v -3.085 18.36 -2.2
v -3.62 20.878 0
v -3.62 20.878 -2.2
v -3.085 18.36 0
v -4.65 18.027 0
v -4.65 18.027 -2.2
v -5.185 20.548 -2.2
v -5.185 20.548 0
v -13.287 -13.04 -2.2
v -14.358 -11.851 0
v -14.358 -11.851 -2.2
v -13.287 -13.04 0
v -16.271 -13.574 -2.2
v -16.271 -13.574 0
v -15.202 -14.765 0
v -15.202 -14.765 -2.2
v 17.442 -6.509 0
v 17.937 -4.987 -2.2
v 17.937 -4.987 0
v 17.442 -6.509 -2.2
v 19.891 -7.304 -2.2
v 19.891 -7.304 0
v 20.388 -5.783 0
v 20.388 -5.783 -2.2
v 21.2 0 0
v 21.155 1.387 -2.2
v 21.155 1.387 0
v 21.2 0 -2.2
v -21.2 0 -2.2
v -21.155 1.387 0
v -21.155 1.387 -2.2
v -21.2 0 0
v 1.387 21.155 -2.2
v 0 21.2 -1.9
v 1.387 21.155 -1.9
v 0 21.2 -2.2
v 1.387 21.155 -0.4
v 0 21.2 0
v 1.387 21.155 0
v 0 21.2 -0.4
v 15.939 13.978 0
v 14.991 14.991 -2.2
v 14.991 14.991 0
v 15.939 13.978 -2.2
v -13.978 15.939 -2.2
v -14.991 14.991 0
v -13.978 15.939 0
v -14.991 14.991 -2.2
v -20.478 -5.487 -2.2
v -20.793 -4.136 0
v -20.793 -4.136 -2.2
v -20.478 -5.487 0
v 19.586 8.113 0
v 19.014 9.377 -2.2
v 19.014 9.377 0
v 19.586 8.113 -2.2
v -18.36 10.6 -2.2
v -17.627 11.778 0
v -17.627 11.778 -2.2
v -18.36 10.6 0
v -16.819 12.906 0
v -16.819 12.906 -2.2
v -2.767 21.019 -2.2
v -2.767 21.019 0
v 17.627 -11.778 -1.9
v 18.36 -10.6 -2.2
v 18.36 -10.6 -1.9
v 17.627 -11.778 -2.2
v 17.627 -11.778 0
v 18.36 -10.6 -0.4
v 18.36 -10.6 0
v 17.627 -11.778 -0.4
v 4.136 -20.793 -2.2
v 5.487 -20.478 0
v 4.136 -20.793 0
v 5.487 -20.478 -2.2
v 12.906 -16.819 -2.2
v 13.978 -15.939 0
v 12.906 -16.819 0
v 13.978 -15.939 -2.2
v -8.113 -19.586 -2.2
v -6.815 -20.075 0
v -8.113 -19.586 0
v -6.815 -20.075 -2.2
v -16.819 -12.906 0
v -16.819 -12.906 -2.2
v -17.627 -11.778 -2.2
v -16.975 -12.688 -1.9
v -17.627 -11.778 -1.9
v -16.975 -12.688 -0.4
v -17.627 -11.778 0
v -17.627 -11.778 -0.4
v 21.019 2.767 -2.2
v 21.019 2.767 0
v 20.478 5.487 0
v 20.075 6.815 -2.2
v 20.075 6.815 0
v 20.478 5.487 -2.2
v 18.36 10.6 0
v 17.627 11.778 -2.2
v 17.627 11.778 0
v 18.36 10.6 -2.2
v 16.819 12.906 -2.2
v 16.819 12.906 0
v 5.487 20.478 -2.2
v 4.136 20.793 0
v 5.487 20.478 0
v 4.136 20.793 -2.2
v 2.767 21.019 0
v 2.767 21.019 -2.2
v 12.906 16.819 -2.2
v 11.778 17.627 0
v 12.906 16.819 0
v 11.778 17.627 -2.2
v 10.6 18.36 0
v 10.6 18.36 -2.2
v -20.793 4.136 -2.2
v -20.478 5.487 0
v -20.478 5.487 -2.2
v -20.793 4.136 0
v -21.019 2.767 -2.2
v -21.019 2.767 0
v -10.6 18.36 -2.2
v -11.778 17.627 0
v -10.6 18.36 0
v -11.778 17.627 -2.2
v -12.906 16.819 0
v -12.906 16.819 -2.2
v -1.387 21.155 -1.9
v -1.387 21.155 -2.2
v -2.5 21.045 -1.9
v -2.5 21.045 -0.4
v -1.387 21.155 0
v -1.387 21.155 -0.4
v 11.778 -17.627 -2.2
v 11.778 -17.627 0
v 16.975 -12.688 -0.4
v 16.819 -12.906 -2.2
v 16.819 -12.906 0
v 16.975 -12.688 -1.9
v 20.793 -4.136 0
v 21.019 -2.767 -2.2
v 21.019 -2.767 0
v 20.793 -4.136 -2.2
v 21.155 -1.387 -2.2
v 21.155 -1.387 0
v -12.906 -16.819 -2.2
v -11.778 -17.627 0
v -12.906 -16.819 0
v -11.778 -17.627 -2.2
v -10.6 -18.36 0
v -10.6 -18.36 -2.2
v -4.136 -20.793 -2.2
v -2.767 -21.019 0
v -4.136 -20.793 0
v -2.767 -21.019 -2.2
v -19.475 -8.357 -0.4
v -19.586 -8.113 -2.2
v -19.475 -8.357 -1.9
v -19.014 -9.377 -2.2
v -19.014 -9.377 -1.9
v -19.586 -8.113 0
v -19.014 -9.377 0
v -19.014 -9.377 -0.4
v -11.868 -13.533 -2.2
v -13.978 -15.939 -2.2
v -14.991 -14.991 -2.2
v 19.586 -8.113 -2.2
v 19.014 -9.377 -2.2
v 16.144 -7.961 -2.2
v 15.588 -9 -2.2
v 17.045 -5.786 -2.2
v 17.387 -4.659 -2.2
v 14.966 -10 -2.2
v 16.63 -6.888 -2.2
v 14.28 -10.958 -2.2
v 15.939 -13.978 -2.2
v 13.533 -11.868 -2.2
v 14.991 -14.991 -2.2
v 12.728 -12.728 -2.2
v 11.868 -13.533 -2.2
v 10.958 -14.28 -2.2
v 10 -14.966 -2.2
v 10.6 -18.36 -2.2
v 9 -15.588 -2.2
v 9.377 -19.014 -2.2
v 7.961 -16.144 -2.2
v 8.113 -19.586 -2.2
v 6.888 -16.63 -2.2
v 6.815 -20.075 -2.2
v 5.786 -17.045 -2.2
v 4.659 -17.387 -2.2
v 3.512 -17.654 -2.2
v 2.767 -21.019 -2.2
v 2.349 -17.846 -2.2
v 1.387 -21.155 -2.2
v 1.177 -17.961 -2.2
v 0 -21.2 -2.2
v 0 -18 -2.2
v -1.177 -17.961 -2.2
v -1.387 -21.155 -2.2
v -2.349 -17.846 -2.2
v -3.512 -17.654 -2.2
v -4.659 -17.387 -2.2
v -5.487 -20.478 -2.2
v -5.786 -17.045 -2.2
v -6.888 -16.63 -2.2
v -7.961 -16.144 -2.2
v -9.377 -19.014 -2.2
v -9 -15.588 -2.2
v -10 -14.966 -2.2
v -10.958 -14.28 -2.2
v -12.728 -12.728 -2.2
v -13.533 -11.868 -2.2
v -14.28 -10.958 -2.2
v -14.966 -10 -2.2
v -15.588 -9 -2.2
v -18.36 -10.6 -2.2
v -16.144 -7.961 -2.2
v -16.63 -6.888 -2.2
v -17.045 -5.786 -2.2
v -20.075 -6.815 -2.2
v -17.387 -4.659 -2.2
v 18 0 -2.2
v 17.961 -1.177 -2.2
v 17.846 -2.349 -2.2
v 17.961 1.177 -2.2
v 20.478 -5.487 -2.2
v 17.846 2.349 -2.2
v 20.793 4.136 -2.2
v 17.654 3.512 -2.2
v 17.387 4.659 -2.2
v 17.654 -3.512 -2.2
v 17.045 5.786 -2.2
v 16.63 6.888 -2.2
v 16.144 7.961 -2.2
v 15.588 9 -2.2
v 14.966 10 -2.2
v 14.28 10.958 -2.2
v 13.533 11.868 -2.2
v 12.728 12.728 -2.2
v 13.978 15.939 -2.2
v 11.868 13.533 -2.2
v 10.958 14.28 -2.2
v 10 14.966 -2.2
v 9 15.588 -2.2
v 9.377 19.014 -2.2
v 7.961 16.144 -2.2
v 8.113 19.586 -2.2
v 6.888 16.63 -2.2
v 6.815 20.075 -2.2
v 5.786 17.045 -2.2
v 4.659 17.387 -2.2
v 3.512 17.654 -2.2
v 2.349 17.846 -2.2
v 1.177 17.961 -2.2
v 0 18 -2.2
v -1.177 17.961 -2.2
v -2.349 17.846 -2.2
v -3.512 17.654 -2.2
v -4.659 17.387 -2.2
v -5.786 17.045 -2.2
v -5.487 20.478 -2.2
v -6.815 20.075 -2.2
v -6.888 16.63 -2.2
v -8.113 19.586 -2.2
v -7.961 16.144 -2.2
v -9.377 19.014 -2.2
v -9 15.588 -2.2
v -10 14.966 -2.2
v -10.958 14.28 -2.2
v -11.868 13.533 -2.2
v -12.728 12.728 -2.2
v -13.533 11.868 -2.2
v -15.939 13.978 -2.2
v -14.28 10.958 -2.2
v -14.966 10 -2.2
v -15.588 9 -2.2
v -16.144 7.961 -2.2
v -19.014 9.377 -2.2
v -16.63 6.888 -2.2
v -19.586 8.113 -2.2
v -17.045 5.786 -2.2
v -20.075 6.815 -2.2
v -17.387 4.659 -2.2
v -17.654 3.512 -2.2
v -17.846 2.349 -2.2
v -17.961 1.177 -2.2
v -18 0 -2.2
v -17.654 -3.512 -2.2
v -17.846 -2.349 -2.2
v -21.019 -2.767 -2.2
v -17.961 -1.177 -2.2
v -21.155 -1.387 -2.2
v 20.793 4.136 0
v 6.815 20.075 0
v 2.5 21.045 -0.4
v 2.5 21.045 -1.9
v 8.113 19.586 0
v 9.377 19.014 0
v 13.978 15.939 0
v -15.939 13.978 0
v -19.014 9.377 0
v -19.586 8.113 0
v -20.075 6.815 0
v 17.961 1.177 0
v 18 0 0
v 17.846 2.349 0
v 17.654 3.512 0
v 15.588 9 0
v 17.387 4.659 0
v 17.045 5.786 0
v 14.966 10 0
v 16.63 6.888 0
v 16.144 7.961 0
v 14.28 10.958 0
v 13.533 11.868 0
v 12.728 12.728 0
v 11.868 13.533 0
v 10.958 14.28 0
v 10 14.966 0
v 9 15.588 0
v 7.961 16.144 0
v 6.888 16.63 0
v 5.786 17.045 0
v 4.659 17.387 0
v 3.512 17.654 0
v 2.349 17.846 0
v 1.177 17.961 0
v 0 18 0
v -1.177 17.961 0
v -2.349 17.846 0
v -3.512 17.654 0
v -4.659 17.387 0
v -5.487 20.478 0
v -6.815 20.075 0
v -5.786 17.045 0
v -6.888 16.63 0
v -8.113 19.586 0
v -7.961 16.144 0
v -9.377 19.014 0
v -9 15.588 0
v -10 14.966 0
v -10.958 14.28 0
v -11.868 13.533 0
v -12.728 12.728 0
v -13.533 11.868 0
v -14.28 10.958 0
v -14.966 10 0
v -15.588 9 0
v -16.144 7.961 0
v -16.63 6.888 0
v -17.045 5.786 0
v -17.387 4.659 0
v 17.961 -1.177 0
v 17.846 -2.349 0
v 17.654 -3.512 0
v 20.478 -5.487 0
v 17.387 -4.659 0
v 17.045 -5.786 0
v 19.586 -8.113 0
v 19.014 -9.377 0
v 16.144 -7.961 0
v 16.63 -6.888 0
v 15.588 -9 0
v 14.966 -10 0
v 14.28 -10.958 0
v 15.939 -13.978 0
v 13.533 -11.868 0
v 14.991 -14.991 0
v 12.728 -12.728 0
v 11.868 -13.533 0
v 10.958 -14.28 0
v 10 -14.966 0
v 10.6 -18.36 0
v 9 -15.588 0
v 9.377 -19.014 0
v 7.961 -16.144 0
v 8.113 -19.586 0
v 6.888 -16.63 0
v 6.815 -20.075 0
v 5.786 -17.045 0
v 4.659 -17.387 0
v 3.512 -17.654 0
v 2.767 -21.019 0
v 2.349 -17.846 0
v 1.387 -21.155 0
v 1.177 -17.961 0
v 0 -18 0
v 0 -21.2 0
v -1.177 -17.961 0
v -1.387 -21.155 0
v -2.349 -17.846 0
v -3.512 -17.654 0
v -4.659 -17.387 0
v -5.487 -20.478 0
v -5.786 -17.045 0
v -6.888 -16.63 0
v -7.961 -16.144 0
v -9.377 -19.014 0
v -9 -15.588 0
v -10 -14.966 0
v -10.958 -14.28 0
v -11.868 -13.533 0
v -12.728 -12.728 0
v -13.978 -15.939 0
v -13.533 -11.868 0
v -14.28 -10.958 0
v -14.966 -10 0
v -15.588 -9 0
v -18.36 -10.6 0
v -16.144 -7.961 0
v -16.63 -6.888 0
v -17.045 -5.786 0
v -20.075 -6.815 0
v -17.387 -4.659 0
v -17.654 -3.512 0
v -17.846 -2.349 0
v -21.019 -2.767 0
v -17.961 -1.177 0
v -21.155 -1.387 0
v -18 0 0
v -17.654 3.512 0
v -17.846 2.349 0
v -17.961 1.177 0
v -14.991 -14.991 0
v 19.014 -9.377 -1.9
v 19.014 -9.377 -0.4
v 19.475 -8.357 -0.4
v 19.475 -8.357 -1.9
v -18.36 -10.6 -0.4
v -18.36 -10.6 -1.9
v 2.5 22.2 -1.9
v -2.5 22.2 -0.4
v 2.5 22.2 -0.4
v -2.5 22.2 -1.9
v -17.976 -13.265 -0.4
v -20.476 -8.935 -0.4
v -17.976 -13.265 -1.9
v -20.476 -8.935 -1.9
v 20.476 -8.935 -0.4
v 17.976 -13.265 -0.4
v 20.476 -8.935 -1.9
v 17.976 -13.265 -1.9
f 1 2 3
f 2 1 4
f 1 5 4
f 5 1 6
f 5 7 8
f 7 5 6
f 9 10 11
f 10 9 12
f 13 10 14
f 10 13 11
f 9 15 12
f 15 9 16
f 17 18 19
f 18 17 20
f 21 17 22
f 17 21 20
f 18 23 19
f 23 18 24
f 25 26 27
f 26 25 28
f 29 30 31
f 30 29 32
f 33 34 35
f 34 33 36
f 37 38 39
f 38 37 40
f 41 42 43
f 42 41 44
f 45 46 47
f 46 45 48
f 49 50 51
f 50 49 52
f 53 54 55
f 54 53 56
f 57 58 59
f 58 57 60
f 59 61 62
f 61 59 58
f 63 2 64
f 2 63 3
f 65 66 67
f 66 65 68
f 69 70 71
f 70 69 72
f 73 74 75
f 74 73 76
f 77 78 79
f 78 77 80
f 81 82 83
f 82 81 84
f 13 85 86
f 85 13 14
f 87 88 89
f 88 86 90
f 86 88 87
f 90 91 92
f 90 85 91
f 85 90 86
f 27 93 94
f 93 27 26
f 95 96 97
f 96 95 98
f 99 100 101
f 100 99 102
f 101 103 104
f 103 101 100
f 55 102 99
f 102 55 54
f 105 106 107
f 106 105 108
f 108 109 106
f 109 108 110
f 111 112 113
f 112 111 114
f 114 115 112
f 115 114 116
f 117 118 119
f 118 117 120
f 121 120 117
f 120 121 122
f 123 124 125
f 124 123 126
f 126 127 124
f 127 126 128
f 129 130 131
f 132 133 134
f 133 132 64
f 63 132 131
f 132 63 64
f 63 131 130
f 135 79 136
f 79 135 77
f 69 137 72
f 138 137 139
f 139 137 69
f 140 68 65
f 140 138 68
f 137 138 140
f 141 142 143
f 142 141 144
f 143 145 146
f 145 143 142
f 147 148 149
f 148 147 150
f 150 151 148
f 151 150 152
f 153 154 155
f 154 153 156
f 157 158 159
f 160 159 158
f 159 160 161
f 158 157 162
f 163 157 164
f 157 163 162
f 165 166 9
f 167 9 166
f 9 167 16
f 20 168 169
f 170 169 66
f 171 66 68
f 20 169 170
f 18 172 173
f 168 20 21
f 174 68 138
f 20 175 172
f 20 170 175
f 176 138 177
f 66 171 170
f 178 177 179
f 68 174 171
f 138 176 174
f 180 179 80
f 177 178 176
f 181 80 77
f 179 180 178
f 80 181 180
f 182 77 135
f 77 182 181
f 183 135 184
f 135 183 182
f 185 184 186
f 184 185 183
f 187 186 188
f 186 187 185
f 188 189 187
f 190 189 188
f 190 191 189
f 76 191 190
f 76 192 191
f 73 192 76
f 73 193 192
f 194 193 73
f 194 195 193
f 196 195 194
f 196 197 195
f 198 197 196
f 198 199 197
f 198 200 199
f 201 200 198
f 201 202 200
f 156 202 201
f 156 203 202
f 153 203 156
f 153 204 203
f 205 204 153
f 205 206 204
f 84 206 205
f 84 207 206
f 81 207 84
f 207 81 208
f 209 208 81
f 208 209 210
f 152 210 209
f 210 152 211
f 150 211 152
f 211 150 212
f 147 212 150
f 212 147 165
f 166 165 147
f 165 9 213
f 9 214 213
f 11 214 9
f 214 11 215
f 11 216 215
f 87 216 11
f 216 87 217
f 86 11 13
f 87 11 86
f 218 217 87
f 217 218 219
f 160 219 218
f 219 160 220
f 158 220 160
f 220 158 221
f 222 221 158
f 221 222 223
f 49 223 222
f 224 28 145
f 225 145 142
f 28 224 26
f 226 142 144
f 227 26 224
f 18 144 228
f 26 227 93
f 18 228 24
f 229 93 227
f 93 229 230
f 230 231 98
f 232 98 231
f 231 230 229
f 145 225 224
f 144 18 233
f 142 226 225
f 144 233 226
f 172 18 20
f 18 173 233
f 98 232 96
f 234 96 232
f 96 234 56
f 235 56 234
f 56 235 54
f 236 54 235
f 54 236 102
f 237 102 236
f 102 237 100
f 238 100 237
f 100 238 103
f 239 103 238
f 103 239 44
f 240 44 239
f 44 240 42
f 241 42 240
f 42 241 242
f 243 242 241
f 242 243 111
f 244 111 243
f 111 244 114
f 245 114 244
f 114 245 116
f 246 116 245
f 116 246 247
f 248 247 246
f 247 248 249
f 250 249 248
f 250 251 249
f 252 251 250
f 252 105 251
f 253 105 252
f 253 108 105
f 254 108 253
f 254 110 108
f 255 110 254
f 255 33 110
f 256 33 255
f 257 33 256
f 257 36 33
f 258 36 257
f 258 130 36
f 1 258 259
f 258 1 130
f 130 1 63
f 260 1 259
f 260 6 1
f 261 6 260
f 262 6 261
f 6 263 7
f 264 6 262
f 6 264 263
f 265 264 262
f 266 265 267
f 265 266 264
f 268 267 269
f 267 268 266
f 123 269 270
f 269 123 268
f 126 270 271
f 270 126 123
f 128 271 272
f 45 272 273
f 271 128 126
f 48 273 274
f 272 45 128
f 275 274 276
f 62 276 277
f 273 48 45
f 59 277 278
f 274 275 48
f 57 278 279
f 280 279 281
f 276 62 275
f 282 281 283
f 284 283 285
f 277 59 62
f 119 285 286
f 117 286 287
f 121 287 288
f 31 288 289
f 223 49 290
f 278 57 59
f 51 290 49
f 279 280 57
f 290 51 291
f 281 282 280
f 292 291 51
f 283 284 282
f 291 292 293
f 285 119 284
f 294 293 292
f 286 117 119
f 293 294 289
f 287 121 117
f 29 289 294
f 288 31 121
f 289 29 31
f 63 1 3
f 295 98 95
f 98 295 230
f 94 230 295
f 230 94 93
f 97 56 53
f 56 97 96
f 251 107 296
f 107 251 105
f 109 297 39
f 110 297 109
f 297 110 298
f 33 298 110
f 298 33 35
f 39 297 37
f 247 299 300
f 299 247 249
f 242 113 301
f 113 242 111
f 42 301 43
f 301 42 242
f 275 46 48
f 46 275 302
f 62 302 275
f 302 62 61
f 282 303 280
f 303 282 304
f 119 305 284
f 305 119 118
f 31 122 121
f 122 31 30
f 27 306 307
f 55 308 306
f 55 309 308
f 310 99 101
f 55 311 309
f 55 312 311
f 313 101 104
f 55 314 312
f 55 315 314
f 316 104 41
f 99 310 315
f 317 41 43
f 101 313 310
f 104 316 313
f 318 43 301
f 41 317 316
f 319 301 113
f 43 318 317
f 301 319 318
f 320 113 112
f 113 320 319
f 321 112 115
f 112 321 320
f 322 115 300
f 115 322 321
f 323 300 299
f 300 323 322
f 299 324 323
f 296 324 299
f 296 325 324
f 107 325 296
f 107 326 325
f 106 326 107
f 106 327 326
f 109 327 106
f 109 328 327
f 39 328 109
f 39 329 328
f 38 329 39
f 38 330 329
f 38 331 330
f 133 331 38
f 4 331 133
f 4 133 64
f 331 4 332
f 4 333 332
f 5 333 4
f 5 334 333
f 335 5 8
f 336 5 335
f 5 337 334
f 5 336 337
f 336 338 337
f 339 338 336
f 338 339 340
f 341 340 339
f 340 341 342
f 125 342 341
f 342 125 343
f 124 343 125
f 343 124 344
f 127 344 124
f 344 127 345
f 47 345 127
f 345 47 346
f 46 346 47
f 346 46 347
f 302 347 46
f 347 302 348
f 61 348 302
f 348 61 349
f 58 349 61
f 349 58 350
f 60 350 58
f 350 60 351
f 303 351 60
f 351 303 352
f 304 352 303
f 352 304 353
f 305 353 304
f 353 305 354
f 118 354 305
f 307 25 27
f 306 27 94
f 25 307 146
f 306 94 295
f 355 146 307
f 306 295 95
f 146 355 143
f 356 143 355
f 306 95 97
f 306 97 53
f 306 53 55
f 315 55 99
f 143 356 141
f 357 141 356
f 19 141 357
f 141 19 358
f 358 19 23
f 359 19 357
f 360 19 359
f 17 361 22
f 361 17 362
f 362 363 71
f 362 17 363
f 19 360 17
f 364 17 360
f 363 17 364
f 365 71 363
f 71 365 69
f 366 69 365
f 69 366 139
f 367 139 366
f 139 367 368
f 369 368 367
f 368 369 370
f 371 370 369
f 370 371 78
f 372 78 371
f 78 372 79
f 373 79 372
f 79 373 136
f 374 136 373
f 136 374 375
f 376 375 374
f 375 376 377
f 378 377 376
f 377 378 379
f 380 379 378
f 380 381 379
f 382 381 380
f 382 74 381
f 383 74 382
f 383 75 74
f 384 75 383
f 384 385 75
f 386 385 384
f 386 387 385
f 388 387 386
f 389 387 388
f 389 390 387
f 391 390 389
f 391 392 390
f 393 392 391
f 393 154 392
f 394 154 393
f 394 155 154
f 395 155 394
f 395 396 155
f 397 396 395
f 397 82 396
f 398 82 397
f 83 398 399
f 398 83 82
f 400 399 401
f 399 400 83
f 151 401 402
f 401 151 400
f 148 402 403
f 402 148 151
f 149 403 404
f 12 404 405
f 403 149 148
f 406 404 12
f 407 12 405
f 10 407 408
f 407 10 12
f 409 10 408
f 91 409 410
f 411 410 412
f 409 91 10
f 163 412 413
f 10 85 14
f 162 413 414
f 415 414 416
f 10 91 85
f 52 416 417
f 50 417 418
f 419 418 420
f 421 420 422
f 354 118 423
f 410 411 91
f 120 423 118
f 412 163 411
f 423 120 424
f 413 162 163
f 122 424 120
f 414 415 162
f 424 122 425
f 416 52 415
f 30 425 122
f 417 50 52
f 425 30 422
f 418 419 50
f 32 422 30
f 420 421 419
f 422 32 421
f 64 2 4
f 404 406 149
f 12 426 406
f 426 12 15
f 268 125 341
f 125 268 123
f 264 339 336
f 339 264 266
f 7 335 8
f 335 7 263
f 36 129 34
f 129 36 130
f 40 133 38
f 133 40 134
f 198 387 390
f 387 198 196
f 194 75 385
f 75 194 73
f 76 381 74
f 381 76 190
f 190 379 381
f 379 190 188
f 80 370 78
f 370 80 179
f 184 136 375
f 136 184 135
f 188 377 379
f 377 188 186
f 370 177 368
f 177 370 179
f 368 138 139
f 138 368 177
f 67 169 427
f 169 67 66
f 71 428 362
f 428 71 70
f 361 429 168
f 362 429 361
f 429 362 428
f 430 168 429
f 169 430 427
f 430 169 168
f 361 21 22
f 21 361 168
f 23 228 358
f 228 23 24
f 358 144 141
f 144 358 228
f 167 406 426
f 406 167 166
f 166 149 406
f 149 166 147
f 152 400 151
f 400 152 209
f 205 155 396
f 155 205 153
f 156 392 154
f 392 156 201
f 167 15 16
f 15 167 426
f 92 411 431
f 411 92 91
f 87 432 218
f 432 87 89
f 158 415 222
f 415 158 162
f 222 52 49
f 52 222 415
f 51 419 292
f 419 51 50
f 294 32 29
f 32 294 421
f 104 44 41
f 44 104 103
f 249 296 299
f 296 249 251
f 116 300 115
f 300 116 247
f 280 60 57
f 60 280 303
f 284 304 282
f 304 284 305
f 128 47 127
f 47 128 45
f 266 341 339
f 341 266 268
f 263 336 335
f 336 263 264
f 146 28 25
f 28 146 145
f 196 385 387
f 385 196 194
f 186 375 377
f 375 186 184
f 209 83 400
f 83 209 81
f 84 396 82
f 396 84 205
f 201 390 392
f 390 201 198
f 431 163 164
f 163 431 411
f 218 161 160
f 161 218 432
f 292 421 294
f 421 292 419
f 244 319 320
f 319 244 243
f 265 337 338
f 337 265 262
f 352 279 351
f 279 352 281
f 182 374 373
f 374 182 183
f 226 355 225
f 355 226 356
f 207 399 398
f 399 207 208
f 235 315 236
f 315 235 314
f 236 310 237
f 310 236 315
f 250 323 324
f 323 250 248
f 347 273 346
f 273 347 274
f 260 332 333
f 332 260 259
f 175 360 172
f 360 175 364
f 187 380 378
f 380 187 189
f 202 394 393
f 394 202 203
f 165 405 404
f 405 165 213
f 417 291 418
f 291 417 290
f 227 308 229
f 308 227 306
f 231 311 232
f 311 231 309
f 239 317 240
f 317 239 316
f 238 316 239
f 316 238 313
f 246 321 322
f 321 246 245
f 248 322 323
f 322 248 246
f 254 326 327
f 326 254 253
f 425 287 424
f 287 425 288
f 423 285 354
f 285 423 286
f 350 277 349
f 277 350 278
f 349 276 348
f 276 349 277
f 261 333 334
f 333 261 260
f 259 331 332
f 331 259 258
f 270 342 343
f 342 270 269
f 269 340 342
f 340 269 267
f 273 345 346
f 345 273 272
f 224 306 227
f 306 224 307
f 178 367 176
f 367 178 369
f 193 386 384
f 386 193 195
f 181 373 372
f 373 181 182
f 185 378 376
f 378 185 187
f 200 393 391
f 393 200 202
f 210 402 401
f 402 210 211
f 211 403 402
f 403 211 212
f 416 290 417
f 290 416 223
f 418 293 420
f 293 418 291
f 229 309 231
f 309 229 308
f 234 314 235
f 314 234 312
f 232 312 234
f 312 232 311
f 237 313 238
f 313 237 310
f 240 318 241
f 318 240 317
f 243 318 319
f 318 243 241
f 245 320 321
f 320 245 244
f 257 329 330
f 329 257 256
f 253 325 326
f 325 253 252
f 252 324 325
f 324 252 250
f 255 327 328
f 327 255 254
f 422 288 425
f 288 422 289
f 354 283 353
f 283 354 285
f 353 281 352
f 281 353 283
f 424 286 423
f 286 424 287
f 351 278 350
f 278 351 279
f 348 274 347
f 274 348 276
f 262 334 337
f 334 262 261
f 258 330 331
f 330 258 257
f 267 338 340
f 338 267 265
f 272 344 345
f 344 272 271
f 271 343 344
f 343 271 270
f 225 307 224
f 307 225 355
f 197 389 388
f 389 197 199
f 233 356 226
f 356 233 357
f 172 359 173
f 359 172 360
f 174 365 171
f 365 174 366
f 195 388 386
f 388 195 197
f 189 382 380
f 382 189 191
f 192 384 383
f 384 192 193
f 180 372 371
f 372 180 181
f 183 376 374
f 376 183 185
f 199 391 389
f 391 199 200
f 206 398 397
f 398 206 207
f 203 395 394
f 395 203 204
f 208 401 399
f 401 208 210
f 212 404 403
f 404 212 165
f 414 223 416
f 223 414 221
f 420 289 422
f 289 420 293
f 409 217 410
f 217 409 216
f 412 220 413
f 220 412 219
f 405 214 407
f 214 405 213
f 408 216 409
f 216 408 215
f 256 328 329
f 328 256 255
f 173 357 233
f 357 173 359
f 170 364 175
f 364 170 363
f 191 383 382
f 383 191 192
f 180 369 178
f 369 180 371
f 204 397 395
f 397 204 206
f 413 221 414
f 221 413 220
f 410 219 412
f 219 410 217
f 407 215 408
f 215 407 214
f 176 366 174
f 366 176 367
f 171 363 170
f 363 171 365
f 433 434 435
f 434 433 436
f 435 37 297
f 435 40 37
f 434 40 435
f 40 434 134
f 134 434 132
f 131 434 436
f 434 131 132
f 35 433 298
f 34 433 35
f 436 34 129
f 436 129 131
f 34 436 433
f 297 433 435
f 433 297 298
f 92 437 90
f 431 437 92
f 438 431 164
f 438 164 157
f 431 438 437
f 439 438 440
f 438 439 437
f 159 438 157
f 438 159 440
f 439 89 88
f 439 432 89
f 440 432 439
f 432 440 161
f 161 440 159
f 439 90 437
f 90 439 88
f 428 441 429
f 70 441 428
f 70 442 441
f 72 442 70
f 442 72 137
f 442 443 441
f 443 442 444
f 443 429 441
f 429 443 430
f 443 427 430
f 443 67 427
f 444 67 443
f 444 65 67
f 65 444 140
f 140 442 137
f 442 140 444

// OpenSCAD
// file: ../components/window_retainer_001.scad
// ============================================================================
// window_retainer_001.scad — Đĩa acrylic đáy + vòng ép SNAP-FIT
// ----------------------------------------------------------------------------
// - acrylic_window(): đĩa acrylic TRONG Ø42×3 (MUA/CẮT — không in; mock tham chiếu).
// - window_retainer(): vòng ép IN 3D, luồn từ dưới vào hốc Ø42.7 của khay,
//   3 TAI NGÀM (90/210/330° — tránh cổng ±X) cài vào 3 cửa sổ ở váy khay,
//   ép đĩa lên gờ kê 1mm + lớp silicon hồ cá (chống rò, KHÔNG keo 502 — fogging).
//   Vít M2.5 bất khả thi hình học với OD khay 44 → snap-fit (README cho phép).
// Gốc cục bộ: mặt TRÊN vòng ép = z=0 (mặt tiếp đĩa); assembly đặt theo z_tray_bot.
// ============================================================================
include <../constants.scad>

EPS = 0.05;

module acrylic_window() {
    color(col_acrylic) cylinder(d = tray_win_d, h = tray_win_t, $fn = 96);
}

module window_retainer() {
    ring_od = tray_win_d + 2*win_clr - 0.3;  // Ø42.4 trượt trong hốc Ø42.7
    ring_id = 36.0;                          // không che cửa sổ sáng quá sâu
    tab_w   = 5.0;
    color(col_plastic) {
        difference() {
            translate([0, 0, -retainer_t]) cylinder(d = ring_od, h = retainer_t, $fn = 96);
            translate([0, 0, -retainer_t - EPS]) cylinder(d = ring_id, h = retainer_t + 2*EPS, $fn = 96);
            // 3 khe đàn hồi cạnh tai (cho vòng bóp vào khi luồn)
            for (a = [90, 210, 330])
                rotate([0, 0, a + 12])
                    translate([ring_od/2 - 2.6, -0.8, -retainer_t - EPS])
                        cube([3, 1.6, retainer_t + 2*EPS]);
        }
        // 3 tai ngàm (bướu ngoài, khớp cửa sổ 6×1.8 ở váy khay)
        for (a = [90, 210, 330])
            rotate([0, 0, a])
                translate([ring_od/2 - 0.6, -tab_w/2, -retainer_t + 0.3])
                    cube([1.6, tab_w, 1.5]);
    }
}

// Xem lẻ: vòng ép + đĩa (ghost) đặt đúng tương quan
window_retainer();
%translate([0, 0, 0.3]) acrylic_window();  // 0.3 = lớp silicon
// main file
// print_window_retainer.scad — Vòng ép snap-fit đĩa acrylic (1 chi tiết in).
// In phẳng (mặt vòng xuống bàn). Vật liệu dẻo chút càng tốt (PETG) cho tai ngàm.
include <../constants.scad>
use <../components/window_retainer_001.scad>

window_retainer();
